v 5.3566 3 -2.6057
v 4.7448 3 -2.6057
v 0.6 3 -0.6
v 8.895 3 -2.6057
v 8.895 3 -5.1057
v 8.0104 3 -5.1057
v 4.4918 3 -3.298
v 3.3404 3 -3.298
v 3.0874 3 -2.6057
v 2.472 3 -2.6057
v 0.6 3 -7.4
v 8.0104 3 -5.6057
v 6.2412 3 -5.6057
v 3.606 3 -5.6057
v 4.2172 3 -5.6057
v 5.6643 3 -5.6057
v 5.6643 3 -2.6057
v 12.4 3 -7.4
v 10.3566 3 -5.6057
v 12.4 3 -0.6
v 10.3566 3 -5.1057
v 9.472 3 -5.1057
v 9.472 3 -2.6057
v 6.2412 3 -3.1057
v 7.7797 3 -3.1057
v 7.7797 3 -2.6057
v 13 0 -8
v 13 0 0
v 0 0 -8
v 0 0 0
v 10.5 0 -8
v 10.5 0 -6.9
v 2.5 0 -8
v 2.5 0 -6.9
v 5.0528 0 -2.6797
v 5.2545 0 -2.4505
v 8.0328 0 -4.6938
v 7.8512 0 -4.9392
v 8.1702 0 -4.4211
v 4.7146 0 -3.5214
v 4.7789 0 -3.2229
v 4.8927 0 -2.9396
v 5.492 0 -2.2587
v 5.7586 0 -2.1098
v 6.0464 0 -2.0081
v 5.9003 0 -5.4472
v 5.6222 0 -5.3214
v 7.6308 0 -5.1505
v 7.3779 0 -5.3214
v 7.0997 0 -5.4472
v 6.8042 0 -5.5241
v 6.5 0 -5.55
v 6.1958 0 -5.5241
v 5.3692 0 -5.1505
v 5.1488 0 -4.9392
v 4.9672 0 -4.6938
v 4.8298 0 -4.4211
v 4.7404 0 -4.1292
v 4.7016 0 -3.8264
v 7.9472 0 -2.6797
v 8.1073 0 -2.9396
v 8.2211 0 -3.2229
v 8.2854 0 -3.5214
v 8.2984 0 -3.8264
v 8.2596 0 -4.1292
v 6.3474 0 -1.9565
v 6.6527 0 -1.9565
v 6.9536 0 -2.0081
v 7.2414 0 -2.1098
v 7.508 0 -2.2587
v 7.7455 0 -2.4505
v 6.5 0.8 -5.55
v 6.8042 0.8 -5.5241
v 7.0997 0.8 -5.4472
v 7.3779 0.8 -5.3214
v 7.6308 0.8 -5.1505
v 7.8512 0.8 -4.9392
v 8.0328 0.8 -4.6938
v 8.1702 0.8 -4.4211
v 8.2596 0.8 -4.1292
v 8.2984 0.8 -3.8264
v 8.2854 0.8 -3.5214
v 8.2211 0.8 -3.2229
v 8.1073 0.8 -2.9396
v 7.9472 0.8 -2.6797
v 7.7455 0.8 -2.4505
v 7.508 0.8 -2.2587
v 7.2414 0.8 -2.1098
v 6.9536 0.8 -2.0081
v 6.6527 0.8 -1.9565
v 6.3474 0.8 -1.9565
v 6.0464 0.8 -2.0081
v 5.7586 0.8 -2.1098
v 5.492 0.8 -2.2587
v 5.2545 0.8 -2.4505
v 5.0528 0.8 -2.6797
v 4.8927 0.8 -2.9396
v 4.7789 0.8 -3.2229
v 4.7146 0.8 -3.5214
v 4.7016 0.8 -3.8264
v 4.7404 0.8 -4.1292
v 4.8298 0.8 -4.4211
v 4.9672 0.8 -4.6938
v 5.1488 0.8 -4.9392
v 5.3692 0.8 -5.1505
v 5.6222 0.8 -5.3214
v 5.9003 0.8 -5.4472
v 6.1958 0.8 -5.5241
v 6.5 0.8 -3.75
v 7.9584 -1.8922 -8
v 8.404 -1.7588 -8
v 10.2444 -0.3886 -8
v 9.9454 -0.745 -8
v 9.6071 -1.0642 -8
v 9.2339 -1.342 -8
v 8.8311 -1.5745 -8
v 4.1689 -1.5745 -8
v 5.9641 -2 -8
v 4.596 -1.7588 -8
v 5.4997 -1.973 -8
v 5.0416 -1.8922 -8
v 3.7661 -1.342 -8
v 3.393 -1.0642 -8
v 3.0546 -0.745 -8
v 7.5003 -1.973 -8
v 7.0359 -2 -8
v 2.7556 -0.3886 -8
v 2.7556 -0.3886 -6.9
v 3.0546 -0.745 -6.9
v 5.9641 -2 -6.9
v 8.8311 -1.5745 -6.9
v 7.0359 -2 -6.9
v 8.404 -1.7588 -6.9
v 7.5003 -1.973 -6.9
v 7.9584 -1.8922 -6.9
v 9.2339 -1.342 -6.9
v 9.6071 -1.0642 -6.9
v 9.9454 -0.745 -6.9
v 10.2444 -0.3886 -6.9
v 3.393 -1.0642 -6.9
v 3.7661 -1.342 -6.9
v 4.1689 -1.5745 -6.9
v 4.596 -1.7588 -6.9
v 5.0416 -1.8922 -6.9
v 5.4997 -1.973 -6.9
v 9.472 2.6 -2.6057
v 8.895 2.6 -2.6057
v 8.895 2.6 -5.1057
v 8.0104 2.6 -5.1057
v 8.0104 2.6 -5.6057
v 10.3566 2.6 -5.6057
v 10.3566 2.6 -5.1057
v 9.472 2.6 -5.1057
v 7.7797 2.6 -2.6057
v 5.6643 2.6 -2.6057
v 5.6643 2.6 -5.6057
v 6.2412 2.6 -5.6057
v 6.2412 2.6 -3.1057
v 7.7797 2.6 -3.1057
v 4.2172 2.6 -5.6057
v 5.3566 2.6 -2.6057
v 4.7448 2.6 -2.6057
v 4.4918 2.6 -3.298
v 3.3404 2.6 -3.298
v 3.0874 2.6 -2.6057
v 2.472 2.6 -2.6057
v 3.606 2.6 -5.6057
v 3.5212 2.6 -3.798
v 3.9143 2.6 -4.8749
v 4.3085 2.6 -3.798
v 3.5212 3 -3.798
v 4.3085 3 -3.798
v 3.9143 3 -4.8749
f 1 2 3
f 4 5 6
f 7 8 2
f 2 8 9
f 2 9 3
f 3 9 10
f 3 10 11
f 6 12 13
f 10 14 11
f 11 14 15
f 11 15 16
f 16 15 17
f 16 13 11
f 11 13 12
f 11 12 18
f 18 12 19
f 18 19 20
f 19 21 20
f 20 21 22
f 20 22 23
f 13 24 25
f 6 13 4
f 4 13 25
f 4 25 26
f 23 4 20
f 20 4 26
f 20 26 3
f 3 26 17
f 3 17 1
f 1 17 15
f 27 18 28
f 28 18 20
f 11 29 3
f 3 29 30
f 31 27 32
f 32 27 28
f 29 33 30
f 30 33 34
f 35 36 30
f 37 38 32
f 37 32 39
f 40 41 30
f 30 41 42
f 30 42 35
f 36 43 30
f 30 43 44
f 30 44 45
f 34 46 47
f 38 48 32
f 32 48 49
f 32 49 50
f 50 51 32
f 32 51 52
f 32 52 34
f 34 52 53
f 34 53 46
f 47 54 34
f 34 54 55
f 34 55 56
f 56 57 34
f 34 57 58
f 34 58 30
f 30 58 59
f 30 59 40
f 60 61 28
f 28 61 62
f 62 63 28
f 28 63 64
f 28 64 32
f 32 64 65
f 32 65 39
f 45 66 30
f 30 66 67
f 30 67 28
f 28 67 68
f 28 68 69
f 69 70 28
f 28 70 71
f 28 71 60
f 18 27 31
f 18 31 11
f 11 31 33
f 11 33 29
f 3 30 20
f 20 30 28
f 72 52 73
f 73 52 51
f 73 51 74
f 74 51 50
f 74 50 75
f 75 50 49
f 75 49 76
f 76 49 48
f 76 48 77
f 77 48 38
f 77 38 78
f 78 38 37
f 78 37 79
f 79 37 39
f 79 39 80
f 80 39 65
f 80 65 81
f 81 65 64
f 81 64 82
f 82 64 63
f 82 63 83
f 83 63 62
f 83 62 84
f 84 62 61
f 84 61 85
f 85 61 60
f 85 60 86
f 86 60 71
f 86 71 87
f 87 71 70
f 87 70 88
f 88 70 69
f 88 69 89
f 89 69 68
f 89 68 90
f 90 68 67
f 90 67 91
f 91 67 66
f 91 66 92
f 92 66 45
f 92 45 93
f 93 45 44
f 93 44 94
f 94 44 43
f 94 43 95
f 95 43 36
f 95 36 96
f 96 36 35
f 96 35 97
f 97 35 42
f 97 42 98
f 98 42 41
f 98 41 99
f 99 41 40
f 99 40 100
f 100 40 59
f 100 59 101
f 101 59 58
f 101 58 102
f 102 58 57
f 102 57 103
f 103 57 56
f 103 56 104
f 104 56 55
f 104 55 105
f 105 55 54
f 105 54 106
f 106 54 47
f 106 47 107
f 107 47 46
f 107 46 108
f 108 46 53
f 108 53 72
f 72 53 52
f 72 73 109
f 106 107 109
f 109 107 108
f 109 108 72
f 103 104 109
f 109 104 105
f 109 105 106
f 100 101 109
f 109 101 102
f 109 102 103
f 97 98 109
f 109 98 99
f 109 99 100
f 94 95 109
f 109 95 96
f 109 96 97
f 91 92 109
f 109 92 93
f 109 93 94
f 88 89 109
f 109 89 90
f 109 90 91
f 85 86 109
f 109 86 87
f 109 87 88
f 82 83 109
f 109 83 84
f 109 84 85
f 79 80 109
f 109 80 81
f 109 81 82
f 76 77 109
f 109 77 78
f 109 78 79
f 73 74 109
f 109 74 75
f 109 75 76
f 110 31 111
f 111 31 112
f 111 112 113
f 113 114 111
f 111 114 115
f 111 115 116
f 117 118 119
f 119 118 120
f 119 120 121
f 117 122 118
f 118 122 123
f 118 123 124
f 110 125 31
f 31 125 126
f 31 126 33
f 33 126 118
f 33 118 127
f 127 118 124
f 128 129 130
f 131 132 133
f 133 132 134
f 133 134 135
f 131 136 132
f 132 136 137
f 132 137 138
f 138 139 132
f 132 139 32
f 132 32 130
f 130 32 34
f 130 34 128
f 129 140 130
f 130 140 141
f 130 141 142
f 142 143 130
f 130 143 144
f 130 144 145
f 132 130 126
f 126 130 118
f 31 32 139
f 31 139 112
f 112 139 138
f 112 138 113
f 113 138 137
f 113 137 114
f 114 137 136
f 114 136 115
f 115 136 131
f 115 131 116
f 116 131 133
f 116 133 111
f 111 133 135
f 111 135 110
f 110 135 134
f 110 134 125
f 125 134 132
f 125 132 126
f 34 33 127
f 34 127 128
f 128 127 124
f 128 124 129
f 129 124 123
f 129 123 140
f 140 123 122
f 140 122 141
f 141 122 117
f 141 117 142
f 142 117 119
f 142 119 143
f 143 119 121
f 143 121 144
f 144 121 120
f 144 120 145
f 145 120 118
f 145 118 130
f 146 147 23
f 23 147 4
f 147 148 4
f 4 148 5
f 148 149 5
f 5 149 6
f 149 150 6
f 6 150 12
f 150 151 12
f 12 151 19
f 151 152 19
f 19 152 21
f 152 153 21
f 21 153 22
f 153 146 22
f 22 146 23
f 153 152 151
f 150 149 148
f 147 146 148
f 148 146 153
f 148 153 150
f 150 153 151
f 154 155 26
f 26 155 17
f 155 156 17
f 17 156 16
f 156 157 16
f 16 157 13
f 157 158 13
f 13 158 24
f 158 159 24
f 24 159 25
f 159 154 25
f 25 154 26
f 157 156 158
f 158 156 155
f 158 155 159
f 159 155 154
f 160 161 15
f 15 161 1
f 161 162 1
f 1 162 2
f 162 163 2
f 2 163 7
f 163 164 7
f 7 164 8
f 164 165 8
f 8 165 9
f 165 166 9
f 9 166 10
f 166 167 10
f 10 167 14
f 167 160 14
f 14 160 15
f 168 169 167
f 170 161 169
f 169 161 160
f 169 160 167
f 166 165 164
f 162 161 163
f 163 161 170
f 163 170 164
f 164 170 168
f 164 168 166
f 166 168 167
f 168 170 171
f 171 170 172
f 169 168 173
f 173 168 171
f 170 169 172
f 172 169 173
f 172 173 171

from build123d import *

# Parameters (mm, degrees)
SKETCH1_W               = 13
SKETCH1_H               = 8
BOSS_EXTRUDE1_DEPTH     = 3
CUT_EXTRUDE1_DEPTH      = 16.556349186
CUT_EXTRUDE1_DEPTH_BACK = 16.556349186
CUT_EXTRUDE2_DEPTH      = 16.556349186
CUT_EXTRUDE2_DEPTH_BACK = 16.556349186
SKETCH4_R               = 1.8
CUT_EXTRUDE3_DEPTH      = 0.8
SKETCH5_W               = 8
SKETCH5_H               = 1.1
BOSS_EXTRUDE2_DEPTH     = 2
FILLET1_R               = 4
CUT_EXTRUDE4_DEPTH      = 0.4


with BuildPart() as part:
    # Sketch1 → Boss-Extrude1 (new body)
    with BuildSketch(Plane(origin=(0, 0, 0), x_dir=(1, 0, 0), z_dir=(0, 1, 0))):
        with Locations((6.5, 4)):
            Rectangle(SKETCH1_W, SKETCH1_H)
    extrude(amount=BOSS_EXTRUDE1_DEPTH)

    # Sketch2 → Cut-Extrude1 (cut, two sides: drawn at the far end of the back side and taken through both)
    with BuildSketch(Plane.XY.offset(-CUT_EXTRUDE1_DEPTH_BACK)):
        Polygon((0, 0), (0.6, 3), (0, 3), align=None)
        Polygon((13, 0), (12.4, 3), (13, 3), align=None)
    extrude(amount=CUT_EXTRUDE1_DEPTH + CUT_EXTRUDE1_DEPTH_BACK, mode=Mode.SUBTRACT)

    # Sketch3 → Cut-Extrude2 (cut, two sides: drawn at the far end of the back side and taken through both)
    with BuildSketch(Plane(origin=(0, 0, 0), x_dir=(0, 0, -1), z_dir=(1, 0, 0)).offset(-CUT_EXTRUDE2_DEPTH_BACK)):
        Polygon((0, 0), (0.6, 3), (0, 3), align=None)
        Polygon((8, 3), (7.4, 3), (8, 0), align=None)
    extrude(amount=CUT_EXTRUDE2_DEPTH + CUT_EXTRUDE2_DEPTH_BACK, mode=Mode.SUBTRACT)

    # Sketch4 → Cut-Extrude3 (cut)
    with BuildSketch(Plane.XZ):
        with Locations(Location((6.50000125, -3.75, 0), (0, 0, 270))):
            Circle(SKETCH4_R)
    extrude(amount=-CUT_EXTRUDE3_DEPTH, mode=Mode.SUBTRACT)

    # Sketch5 → Boss-Extrude2 (add)
    with BuildSketch(Plane.XZ):
        with Locations((6.500011, -7.45)):
            Rectangle(SKETCH5_W, SKETCH5_H)
    extrude(amount=BOSS_EXTRUDE2_DEPTH)

    # Fillet1
    # the kernel refuses this fillet: 4 mm, written as the material it takes off along each edge
    with BuildSketch(Plane(origin=(10.500011, -2, -16.660254038), x_dir=(0, 1, 0), z_dir=(0, 0, 1)), Plane(origin=(2.500011, -2, 1.760254038), x_dir=(0, 1, 0), z_dir=(0, 0, -1))) as fillet1_piece_1:
        with BuildLine():
            CenterArc((4, 3.464101615), FILLET1_R, 180, 60)
            Line((0, 3.464101615), (-0.08, 3.464101615))
            Line((-0.08, 3.464101615), (-0.08, 0))
            Line((-0.08, 0), (0, -0.08))
            ThreePointArc((0, -0.08), (1, -0.08), (1.96, -0.069282032))
            Line((1.96, -0.069282032), (2, 0))
        make_face()
    extrude(amount=18.420508076, mode=Mode.SUBTRACT)

    # Sketch6 → Cut-Extrude4 (cut)
    # profile 1 of 3: a face of its own
    with BuildSketch(Plane(origin=(0, 3, 0), x_dir=(1, 0, 0), z_dir=(0, 1, 0))):
        Polygon((5.356583629, 2.605681315), (4.744804782, 2.605681315), (4.491799975, 3.297989008), (3.340357667, 3.297989008), (3.087352859, 2.605681315), (2.471968244, 2.605681315), (3.605982667, 5.605681315), (4.217160552, 5.605681315), align=None)
        Polygon((4.308506705, 3.797989008), (3.914275936, 4.874912084), (3.52124709, 3.797989008), align=None, mode=Mode.SUBTRACT)
    # profile 2 of 3: a face of its own
    with BuildSketch(Plane(origin=(0, 3, 0), x_dir=(1, 0, 0), z_dir=(0, 1, 0))):
        Polygon((5.664275936, 2.605681315), (5.664275936, 5.605681315), (6.241199013, 5.605681315), (6.241199013, 3.105681315), (7.779660552, 3.105681315), (7.779660552, 2.605681315), align=None)
    # profile 3 of 3: a face of its own
    with BuildSketch(Plane(origin=(0, 3, 0), x_dir=(1, 0, 0), z_dir=(0, 1, 0))):
        Polygon((8.895045167, 2.605681315), (8.895045167, 5.105681315), (8.010429782, 5.105681315), (8.010429782, 5.605681315), (10.356583629, 5.605681315), (10.356583629, 5.105681315), (9.471968244, 5.105681315), (9.471968244, 2.605681315), align=None)
    extrude(amount=-CUT_EXTRUDE4_DEPTH, mode=Mode.SUBTRACT)


solid = part.part
